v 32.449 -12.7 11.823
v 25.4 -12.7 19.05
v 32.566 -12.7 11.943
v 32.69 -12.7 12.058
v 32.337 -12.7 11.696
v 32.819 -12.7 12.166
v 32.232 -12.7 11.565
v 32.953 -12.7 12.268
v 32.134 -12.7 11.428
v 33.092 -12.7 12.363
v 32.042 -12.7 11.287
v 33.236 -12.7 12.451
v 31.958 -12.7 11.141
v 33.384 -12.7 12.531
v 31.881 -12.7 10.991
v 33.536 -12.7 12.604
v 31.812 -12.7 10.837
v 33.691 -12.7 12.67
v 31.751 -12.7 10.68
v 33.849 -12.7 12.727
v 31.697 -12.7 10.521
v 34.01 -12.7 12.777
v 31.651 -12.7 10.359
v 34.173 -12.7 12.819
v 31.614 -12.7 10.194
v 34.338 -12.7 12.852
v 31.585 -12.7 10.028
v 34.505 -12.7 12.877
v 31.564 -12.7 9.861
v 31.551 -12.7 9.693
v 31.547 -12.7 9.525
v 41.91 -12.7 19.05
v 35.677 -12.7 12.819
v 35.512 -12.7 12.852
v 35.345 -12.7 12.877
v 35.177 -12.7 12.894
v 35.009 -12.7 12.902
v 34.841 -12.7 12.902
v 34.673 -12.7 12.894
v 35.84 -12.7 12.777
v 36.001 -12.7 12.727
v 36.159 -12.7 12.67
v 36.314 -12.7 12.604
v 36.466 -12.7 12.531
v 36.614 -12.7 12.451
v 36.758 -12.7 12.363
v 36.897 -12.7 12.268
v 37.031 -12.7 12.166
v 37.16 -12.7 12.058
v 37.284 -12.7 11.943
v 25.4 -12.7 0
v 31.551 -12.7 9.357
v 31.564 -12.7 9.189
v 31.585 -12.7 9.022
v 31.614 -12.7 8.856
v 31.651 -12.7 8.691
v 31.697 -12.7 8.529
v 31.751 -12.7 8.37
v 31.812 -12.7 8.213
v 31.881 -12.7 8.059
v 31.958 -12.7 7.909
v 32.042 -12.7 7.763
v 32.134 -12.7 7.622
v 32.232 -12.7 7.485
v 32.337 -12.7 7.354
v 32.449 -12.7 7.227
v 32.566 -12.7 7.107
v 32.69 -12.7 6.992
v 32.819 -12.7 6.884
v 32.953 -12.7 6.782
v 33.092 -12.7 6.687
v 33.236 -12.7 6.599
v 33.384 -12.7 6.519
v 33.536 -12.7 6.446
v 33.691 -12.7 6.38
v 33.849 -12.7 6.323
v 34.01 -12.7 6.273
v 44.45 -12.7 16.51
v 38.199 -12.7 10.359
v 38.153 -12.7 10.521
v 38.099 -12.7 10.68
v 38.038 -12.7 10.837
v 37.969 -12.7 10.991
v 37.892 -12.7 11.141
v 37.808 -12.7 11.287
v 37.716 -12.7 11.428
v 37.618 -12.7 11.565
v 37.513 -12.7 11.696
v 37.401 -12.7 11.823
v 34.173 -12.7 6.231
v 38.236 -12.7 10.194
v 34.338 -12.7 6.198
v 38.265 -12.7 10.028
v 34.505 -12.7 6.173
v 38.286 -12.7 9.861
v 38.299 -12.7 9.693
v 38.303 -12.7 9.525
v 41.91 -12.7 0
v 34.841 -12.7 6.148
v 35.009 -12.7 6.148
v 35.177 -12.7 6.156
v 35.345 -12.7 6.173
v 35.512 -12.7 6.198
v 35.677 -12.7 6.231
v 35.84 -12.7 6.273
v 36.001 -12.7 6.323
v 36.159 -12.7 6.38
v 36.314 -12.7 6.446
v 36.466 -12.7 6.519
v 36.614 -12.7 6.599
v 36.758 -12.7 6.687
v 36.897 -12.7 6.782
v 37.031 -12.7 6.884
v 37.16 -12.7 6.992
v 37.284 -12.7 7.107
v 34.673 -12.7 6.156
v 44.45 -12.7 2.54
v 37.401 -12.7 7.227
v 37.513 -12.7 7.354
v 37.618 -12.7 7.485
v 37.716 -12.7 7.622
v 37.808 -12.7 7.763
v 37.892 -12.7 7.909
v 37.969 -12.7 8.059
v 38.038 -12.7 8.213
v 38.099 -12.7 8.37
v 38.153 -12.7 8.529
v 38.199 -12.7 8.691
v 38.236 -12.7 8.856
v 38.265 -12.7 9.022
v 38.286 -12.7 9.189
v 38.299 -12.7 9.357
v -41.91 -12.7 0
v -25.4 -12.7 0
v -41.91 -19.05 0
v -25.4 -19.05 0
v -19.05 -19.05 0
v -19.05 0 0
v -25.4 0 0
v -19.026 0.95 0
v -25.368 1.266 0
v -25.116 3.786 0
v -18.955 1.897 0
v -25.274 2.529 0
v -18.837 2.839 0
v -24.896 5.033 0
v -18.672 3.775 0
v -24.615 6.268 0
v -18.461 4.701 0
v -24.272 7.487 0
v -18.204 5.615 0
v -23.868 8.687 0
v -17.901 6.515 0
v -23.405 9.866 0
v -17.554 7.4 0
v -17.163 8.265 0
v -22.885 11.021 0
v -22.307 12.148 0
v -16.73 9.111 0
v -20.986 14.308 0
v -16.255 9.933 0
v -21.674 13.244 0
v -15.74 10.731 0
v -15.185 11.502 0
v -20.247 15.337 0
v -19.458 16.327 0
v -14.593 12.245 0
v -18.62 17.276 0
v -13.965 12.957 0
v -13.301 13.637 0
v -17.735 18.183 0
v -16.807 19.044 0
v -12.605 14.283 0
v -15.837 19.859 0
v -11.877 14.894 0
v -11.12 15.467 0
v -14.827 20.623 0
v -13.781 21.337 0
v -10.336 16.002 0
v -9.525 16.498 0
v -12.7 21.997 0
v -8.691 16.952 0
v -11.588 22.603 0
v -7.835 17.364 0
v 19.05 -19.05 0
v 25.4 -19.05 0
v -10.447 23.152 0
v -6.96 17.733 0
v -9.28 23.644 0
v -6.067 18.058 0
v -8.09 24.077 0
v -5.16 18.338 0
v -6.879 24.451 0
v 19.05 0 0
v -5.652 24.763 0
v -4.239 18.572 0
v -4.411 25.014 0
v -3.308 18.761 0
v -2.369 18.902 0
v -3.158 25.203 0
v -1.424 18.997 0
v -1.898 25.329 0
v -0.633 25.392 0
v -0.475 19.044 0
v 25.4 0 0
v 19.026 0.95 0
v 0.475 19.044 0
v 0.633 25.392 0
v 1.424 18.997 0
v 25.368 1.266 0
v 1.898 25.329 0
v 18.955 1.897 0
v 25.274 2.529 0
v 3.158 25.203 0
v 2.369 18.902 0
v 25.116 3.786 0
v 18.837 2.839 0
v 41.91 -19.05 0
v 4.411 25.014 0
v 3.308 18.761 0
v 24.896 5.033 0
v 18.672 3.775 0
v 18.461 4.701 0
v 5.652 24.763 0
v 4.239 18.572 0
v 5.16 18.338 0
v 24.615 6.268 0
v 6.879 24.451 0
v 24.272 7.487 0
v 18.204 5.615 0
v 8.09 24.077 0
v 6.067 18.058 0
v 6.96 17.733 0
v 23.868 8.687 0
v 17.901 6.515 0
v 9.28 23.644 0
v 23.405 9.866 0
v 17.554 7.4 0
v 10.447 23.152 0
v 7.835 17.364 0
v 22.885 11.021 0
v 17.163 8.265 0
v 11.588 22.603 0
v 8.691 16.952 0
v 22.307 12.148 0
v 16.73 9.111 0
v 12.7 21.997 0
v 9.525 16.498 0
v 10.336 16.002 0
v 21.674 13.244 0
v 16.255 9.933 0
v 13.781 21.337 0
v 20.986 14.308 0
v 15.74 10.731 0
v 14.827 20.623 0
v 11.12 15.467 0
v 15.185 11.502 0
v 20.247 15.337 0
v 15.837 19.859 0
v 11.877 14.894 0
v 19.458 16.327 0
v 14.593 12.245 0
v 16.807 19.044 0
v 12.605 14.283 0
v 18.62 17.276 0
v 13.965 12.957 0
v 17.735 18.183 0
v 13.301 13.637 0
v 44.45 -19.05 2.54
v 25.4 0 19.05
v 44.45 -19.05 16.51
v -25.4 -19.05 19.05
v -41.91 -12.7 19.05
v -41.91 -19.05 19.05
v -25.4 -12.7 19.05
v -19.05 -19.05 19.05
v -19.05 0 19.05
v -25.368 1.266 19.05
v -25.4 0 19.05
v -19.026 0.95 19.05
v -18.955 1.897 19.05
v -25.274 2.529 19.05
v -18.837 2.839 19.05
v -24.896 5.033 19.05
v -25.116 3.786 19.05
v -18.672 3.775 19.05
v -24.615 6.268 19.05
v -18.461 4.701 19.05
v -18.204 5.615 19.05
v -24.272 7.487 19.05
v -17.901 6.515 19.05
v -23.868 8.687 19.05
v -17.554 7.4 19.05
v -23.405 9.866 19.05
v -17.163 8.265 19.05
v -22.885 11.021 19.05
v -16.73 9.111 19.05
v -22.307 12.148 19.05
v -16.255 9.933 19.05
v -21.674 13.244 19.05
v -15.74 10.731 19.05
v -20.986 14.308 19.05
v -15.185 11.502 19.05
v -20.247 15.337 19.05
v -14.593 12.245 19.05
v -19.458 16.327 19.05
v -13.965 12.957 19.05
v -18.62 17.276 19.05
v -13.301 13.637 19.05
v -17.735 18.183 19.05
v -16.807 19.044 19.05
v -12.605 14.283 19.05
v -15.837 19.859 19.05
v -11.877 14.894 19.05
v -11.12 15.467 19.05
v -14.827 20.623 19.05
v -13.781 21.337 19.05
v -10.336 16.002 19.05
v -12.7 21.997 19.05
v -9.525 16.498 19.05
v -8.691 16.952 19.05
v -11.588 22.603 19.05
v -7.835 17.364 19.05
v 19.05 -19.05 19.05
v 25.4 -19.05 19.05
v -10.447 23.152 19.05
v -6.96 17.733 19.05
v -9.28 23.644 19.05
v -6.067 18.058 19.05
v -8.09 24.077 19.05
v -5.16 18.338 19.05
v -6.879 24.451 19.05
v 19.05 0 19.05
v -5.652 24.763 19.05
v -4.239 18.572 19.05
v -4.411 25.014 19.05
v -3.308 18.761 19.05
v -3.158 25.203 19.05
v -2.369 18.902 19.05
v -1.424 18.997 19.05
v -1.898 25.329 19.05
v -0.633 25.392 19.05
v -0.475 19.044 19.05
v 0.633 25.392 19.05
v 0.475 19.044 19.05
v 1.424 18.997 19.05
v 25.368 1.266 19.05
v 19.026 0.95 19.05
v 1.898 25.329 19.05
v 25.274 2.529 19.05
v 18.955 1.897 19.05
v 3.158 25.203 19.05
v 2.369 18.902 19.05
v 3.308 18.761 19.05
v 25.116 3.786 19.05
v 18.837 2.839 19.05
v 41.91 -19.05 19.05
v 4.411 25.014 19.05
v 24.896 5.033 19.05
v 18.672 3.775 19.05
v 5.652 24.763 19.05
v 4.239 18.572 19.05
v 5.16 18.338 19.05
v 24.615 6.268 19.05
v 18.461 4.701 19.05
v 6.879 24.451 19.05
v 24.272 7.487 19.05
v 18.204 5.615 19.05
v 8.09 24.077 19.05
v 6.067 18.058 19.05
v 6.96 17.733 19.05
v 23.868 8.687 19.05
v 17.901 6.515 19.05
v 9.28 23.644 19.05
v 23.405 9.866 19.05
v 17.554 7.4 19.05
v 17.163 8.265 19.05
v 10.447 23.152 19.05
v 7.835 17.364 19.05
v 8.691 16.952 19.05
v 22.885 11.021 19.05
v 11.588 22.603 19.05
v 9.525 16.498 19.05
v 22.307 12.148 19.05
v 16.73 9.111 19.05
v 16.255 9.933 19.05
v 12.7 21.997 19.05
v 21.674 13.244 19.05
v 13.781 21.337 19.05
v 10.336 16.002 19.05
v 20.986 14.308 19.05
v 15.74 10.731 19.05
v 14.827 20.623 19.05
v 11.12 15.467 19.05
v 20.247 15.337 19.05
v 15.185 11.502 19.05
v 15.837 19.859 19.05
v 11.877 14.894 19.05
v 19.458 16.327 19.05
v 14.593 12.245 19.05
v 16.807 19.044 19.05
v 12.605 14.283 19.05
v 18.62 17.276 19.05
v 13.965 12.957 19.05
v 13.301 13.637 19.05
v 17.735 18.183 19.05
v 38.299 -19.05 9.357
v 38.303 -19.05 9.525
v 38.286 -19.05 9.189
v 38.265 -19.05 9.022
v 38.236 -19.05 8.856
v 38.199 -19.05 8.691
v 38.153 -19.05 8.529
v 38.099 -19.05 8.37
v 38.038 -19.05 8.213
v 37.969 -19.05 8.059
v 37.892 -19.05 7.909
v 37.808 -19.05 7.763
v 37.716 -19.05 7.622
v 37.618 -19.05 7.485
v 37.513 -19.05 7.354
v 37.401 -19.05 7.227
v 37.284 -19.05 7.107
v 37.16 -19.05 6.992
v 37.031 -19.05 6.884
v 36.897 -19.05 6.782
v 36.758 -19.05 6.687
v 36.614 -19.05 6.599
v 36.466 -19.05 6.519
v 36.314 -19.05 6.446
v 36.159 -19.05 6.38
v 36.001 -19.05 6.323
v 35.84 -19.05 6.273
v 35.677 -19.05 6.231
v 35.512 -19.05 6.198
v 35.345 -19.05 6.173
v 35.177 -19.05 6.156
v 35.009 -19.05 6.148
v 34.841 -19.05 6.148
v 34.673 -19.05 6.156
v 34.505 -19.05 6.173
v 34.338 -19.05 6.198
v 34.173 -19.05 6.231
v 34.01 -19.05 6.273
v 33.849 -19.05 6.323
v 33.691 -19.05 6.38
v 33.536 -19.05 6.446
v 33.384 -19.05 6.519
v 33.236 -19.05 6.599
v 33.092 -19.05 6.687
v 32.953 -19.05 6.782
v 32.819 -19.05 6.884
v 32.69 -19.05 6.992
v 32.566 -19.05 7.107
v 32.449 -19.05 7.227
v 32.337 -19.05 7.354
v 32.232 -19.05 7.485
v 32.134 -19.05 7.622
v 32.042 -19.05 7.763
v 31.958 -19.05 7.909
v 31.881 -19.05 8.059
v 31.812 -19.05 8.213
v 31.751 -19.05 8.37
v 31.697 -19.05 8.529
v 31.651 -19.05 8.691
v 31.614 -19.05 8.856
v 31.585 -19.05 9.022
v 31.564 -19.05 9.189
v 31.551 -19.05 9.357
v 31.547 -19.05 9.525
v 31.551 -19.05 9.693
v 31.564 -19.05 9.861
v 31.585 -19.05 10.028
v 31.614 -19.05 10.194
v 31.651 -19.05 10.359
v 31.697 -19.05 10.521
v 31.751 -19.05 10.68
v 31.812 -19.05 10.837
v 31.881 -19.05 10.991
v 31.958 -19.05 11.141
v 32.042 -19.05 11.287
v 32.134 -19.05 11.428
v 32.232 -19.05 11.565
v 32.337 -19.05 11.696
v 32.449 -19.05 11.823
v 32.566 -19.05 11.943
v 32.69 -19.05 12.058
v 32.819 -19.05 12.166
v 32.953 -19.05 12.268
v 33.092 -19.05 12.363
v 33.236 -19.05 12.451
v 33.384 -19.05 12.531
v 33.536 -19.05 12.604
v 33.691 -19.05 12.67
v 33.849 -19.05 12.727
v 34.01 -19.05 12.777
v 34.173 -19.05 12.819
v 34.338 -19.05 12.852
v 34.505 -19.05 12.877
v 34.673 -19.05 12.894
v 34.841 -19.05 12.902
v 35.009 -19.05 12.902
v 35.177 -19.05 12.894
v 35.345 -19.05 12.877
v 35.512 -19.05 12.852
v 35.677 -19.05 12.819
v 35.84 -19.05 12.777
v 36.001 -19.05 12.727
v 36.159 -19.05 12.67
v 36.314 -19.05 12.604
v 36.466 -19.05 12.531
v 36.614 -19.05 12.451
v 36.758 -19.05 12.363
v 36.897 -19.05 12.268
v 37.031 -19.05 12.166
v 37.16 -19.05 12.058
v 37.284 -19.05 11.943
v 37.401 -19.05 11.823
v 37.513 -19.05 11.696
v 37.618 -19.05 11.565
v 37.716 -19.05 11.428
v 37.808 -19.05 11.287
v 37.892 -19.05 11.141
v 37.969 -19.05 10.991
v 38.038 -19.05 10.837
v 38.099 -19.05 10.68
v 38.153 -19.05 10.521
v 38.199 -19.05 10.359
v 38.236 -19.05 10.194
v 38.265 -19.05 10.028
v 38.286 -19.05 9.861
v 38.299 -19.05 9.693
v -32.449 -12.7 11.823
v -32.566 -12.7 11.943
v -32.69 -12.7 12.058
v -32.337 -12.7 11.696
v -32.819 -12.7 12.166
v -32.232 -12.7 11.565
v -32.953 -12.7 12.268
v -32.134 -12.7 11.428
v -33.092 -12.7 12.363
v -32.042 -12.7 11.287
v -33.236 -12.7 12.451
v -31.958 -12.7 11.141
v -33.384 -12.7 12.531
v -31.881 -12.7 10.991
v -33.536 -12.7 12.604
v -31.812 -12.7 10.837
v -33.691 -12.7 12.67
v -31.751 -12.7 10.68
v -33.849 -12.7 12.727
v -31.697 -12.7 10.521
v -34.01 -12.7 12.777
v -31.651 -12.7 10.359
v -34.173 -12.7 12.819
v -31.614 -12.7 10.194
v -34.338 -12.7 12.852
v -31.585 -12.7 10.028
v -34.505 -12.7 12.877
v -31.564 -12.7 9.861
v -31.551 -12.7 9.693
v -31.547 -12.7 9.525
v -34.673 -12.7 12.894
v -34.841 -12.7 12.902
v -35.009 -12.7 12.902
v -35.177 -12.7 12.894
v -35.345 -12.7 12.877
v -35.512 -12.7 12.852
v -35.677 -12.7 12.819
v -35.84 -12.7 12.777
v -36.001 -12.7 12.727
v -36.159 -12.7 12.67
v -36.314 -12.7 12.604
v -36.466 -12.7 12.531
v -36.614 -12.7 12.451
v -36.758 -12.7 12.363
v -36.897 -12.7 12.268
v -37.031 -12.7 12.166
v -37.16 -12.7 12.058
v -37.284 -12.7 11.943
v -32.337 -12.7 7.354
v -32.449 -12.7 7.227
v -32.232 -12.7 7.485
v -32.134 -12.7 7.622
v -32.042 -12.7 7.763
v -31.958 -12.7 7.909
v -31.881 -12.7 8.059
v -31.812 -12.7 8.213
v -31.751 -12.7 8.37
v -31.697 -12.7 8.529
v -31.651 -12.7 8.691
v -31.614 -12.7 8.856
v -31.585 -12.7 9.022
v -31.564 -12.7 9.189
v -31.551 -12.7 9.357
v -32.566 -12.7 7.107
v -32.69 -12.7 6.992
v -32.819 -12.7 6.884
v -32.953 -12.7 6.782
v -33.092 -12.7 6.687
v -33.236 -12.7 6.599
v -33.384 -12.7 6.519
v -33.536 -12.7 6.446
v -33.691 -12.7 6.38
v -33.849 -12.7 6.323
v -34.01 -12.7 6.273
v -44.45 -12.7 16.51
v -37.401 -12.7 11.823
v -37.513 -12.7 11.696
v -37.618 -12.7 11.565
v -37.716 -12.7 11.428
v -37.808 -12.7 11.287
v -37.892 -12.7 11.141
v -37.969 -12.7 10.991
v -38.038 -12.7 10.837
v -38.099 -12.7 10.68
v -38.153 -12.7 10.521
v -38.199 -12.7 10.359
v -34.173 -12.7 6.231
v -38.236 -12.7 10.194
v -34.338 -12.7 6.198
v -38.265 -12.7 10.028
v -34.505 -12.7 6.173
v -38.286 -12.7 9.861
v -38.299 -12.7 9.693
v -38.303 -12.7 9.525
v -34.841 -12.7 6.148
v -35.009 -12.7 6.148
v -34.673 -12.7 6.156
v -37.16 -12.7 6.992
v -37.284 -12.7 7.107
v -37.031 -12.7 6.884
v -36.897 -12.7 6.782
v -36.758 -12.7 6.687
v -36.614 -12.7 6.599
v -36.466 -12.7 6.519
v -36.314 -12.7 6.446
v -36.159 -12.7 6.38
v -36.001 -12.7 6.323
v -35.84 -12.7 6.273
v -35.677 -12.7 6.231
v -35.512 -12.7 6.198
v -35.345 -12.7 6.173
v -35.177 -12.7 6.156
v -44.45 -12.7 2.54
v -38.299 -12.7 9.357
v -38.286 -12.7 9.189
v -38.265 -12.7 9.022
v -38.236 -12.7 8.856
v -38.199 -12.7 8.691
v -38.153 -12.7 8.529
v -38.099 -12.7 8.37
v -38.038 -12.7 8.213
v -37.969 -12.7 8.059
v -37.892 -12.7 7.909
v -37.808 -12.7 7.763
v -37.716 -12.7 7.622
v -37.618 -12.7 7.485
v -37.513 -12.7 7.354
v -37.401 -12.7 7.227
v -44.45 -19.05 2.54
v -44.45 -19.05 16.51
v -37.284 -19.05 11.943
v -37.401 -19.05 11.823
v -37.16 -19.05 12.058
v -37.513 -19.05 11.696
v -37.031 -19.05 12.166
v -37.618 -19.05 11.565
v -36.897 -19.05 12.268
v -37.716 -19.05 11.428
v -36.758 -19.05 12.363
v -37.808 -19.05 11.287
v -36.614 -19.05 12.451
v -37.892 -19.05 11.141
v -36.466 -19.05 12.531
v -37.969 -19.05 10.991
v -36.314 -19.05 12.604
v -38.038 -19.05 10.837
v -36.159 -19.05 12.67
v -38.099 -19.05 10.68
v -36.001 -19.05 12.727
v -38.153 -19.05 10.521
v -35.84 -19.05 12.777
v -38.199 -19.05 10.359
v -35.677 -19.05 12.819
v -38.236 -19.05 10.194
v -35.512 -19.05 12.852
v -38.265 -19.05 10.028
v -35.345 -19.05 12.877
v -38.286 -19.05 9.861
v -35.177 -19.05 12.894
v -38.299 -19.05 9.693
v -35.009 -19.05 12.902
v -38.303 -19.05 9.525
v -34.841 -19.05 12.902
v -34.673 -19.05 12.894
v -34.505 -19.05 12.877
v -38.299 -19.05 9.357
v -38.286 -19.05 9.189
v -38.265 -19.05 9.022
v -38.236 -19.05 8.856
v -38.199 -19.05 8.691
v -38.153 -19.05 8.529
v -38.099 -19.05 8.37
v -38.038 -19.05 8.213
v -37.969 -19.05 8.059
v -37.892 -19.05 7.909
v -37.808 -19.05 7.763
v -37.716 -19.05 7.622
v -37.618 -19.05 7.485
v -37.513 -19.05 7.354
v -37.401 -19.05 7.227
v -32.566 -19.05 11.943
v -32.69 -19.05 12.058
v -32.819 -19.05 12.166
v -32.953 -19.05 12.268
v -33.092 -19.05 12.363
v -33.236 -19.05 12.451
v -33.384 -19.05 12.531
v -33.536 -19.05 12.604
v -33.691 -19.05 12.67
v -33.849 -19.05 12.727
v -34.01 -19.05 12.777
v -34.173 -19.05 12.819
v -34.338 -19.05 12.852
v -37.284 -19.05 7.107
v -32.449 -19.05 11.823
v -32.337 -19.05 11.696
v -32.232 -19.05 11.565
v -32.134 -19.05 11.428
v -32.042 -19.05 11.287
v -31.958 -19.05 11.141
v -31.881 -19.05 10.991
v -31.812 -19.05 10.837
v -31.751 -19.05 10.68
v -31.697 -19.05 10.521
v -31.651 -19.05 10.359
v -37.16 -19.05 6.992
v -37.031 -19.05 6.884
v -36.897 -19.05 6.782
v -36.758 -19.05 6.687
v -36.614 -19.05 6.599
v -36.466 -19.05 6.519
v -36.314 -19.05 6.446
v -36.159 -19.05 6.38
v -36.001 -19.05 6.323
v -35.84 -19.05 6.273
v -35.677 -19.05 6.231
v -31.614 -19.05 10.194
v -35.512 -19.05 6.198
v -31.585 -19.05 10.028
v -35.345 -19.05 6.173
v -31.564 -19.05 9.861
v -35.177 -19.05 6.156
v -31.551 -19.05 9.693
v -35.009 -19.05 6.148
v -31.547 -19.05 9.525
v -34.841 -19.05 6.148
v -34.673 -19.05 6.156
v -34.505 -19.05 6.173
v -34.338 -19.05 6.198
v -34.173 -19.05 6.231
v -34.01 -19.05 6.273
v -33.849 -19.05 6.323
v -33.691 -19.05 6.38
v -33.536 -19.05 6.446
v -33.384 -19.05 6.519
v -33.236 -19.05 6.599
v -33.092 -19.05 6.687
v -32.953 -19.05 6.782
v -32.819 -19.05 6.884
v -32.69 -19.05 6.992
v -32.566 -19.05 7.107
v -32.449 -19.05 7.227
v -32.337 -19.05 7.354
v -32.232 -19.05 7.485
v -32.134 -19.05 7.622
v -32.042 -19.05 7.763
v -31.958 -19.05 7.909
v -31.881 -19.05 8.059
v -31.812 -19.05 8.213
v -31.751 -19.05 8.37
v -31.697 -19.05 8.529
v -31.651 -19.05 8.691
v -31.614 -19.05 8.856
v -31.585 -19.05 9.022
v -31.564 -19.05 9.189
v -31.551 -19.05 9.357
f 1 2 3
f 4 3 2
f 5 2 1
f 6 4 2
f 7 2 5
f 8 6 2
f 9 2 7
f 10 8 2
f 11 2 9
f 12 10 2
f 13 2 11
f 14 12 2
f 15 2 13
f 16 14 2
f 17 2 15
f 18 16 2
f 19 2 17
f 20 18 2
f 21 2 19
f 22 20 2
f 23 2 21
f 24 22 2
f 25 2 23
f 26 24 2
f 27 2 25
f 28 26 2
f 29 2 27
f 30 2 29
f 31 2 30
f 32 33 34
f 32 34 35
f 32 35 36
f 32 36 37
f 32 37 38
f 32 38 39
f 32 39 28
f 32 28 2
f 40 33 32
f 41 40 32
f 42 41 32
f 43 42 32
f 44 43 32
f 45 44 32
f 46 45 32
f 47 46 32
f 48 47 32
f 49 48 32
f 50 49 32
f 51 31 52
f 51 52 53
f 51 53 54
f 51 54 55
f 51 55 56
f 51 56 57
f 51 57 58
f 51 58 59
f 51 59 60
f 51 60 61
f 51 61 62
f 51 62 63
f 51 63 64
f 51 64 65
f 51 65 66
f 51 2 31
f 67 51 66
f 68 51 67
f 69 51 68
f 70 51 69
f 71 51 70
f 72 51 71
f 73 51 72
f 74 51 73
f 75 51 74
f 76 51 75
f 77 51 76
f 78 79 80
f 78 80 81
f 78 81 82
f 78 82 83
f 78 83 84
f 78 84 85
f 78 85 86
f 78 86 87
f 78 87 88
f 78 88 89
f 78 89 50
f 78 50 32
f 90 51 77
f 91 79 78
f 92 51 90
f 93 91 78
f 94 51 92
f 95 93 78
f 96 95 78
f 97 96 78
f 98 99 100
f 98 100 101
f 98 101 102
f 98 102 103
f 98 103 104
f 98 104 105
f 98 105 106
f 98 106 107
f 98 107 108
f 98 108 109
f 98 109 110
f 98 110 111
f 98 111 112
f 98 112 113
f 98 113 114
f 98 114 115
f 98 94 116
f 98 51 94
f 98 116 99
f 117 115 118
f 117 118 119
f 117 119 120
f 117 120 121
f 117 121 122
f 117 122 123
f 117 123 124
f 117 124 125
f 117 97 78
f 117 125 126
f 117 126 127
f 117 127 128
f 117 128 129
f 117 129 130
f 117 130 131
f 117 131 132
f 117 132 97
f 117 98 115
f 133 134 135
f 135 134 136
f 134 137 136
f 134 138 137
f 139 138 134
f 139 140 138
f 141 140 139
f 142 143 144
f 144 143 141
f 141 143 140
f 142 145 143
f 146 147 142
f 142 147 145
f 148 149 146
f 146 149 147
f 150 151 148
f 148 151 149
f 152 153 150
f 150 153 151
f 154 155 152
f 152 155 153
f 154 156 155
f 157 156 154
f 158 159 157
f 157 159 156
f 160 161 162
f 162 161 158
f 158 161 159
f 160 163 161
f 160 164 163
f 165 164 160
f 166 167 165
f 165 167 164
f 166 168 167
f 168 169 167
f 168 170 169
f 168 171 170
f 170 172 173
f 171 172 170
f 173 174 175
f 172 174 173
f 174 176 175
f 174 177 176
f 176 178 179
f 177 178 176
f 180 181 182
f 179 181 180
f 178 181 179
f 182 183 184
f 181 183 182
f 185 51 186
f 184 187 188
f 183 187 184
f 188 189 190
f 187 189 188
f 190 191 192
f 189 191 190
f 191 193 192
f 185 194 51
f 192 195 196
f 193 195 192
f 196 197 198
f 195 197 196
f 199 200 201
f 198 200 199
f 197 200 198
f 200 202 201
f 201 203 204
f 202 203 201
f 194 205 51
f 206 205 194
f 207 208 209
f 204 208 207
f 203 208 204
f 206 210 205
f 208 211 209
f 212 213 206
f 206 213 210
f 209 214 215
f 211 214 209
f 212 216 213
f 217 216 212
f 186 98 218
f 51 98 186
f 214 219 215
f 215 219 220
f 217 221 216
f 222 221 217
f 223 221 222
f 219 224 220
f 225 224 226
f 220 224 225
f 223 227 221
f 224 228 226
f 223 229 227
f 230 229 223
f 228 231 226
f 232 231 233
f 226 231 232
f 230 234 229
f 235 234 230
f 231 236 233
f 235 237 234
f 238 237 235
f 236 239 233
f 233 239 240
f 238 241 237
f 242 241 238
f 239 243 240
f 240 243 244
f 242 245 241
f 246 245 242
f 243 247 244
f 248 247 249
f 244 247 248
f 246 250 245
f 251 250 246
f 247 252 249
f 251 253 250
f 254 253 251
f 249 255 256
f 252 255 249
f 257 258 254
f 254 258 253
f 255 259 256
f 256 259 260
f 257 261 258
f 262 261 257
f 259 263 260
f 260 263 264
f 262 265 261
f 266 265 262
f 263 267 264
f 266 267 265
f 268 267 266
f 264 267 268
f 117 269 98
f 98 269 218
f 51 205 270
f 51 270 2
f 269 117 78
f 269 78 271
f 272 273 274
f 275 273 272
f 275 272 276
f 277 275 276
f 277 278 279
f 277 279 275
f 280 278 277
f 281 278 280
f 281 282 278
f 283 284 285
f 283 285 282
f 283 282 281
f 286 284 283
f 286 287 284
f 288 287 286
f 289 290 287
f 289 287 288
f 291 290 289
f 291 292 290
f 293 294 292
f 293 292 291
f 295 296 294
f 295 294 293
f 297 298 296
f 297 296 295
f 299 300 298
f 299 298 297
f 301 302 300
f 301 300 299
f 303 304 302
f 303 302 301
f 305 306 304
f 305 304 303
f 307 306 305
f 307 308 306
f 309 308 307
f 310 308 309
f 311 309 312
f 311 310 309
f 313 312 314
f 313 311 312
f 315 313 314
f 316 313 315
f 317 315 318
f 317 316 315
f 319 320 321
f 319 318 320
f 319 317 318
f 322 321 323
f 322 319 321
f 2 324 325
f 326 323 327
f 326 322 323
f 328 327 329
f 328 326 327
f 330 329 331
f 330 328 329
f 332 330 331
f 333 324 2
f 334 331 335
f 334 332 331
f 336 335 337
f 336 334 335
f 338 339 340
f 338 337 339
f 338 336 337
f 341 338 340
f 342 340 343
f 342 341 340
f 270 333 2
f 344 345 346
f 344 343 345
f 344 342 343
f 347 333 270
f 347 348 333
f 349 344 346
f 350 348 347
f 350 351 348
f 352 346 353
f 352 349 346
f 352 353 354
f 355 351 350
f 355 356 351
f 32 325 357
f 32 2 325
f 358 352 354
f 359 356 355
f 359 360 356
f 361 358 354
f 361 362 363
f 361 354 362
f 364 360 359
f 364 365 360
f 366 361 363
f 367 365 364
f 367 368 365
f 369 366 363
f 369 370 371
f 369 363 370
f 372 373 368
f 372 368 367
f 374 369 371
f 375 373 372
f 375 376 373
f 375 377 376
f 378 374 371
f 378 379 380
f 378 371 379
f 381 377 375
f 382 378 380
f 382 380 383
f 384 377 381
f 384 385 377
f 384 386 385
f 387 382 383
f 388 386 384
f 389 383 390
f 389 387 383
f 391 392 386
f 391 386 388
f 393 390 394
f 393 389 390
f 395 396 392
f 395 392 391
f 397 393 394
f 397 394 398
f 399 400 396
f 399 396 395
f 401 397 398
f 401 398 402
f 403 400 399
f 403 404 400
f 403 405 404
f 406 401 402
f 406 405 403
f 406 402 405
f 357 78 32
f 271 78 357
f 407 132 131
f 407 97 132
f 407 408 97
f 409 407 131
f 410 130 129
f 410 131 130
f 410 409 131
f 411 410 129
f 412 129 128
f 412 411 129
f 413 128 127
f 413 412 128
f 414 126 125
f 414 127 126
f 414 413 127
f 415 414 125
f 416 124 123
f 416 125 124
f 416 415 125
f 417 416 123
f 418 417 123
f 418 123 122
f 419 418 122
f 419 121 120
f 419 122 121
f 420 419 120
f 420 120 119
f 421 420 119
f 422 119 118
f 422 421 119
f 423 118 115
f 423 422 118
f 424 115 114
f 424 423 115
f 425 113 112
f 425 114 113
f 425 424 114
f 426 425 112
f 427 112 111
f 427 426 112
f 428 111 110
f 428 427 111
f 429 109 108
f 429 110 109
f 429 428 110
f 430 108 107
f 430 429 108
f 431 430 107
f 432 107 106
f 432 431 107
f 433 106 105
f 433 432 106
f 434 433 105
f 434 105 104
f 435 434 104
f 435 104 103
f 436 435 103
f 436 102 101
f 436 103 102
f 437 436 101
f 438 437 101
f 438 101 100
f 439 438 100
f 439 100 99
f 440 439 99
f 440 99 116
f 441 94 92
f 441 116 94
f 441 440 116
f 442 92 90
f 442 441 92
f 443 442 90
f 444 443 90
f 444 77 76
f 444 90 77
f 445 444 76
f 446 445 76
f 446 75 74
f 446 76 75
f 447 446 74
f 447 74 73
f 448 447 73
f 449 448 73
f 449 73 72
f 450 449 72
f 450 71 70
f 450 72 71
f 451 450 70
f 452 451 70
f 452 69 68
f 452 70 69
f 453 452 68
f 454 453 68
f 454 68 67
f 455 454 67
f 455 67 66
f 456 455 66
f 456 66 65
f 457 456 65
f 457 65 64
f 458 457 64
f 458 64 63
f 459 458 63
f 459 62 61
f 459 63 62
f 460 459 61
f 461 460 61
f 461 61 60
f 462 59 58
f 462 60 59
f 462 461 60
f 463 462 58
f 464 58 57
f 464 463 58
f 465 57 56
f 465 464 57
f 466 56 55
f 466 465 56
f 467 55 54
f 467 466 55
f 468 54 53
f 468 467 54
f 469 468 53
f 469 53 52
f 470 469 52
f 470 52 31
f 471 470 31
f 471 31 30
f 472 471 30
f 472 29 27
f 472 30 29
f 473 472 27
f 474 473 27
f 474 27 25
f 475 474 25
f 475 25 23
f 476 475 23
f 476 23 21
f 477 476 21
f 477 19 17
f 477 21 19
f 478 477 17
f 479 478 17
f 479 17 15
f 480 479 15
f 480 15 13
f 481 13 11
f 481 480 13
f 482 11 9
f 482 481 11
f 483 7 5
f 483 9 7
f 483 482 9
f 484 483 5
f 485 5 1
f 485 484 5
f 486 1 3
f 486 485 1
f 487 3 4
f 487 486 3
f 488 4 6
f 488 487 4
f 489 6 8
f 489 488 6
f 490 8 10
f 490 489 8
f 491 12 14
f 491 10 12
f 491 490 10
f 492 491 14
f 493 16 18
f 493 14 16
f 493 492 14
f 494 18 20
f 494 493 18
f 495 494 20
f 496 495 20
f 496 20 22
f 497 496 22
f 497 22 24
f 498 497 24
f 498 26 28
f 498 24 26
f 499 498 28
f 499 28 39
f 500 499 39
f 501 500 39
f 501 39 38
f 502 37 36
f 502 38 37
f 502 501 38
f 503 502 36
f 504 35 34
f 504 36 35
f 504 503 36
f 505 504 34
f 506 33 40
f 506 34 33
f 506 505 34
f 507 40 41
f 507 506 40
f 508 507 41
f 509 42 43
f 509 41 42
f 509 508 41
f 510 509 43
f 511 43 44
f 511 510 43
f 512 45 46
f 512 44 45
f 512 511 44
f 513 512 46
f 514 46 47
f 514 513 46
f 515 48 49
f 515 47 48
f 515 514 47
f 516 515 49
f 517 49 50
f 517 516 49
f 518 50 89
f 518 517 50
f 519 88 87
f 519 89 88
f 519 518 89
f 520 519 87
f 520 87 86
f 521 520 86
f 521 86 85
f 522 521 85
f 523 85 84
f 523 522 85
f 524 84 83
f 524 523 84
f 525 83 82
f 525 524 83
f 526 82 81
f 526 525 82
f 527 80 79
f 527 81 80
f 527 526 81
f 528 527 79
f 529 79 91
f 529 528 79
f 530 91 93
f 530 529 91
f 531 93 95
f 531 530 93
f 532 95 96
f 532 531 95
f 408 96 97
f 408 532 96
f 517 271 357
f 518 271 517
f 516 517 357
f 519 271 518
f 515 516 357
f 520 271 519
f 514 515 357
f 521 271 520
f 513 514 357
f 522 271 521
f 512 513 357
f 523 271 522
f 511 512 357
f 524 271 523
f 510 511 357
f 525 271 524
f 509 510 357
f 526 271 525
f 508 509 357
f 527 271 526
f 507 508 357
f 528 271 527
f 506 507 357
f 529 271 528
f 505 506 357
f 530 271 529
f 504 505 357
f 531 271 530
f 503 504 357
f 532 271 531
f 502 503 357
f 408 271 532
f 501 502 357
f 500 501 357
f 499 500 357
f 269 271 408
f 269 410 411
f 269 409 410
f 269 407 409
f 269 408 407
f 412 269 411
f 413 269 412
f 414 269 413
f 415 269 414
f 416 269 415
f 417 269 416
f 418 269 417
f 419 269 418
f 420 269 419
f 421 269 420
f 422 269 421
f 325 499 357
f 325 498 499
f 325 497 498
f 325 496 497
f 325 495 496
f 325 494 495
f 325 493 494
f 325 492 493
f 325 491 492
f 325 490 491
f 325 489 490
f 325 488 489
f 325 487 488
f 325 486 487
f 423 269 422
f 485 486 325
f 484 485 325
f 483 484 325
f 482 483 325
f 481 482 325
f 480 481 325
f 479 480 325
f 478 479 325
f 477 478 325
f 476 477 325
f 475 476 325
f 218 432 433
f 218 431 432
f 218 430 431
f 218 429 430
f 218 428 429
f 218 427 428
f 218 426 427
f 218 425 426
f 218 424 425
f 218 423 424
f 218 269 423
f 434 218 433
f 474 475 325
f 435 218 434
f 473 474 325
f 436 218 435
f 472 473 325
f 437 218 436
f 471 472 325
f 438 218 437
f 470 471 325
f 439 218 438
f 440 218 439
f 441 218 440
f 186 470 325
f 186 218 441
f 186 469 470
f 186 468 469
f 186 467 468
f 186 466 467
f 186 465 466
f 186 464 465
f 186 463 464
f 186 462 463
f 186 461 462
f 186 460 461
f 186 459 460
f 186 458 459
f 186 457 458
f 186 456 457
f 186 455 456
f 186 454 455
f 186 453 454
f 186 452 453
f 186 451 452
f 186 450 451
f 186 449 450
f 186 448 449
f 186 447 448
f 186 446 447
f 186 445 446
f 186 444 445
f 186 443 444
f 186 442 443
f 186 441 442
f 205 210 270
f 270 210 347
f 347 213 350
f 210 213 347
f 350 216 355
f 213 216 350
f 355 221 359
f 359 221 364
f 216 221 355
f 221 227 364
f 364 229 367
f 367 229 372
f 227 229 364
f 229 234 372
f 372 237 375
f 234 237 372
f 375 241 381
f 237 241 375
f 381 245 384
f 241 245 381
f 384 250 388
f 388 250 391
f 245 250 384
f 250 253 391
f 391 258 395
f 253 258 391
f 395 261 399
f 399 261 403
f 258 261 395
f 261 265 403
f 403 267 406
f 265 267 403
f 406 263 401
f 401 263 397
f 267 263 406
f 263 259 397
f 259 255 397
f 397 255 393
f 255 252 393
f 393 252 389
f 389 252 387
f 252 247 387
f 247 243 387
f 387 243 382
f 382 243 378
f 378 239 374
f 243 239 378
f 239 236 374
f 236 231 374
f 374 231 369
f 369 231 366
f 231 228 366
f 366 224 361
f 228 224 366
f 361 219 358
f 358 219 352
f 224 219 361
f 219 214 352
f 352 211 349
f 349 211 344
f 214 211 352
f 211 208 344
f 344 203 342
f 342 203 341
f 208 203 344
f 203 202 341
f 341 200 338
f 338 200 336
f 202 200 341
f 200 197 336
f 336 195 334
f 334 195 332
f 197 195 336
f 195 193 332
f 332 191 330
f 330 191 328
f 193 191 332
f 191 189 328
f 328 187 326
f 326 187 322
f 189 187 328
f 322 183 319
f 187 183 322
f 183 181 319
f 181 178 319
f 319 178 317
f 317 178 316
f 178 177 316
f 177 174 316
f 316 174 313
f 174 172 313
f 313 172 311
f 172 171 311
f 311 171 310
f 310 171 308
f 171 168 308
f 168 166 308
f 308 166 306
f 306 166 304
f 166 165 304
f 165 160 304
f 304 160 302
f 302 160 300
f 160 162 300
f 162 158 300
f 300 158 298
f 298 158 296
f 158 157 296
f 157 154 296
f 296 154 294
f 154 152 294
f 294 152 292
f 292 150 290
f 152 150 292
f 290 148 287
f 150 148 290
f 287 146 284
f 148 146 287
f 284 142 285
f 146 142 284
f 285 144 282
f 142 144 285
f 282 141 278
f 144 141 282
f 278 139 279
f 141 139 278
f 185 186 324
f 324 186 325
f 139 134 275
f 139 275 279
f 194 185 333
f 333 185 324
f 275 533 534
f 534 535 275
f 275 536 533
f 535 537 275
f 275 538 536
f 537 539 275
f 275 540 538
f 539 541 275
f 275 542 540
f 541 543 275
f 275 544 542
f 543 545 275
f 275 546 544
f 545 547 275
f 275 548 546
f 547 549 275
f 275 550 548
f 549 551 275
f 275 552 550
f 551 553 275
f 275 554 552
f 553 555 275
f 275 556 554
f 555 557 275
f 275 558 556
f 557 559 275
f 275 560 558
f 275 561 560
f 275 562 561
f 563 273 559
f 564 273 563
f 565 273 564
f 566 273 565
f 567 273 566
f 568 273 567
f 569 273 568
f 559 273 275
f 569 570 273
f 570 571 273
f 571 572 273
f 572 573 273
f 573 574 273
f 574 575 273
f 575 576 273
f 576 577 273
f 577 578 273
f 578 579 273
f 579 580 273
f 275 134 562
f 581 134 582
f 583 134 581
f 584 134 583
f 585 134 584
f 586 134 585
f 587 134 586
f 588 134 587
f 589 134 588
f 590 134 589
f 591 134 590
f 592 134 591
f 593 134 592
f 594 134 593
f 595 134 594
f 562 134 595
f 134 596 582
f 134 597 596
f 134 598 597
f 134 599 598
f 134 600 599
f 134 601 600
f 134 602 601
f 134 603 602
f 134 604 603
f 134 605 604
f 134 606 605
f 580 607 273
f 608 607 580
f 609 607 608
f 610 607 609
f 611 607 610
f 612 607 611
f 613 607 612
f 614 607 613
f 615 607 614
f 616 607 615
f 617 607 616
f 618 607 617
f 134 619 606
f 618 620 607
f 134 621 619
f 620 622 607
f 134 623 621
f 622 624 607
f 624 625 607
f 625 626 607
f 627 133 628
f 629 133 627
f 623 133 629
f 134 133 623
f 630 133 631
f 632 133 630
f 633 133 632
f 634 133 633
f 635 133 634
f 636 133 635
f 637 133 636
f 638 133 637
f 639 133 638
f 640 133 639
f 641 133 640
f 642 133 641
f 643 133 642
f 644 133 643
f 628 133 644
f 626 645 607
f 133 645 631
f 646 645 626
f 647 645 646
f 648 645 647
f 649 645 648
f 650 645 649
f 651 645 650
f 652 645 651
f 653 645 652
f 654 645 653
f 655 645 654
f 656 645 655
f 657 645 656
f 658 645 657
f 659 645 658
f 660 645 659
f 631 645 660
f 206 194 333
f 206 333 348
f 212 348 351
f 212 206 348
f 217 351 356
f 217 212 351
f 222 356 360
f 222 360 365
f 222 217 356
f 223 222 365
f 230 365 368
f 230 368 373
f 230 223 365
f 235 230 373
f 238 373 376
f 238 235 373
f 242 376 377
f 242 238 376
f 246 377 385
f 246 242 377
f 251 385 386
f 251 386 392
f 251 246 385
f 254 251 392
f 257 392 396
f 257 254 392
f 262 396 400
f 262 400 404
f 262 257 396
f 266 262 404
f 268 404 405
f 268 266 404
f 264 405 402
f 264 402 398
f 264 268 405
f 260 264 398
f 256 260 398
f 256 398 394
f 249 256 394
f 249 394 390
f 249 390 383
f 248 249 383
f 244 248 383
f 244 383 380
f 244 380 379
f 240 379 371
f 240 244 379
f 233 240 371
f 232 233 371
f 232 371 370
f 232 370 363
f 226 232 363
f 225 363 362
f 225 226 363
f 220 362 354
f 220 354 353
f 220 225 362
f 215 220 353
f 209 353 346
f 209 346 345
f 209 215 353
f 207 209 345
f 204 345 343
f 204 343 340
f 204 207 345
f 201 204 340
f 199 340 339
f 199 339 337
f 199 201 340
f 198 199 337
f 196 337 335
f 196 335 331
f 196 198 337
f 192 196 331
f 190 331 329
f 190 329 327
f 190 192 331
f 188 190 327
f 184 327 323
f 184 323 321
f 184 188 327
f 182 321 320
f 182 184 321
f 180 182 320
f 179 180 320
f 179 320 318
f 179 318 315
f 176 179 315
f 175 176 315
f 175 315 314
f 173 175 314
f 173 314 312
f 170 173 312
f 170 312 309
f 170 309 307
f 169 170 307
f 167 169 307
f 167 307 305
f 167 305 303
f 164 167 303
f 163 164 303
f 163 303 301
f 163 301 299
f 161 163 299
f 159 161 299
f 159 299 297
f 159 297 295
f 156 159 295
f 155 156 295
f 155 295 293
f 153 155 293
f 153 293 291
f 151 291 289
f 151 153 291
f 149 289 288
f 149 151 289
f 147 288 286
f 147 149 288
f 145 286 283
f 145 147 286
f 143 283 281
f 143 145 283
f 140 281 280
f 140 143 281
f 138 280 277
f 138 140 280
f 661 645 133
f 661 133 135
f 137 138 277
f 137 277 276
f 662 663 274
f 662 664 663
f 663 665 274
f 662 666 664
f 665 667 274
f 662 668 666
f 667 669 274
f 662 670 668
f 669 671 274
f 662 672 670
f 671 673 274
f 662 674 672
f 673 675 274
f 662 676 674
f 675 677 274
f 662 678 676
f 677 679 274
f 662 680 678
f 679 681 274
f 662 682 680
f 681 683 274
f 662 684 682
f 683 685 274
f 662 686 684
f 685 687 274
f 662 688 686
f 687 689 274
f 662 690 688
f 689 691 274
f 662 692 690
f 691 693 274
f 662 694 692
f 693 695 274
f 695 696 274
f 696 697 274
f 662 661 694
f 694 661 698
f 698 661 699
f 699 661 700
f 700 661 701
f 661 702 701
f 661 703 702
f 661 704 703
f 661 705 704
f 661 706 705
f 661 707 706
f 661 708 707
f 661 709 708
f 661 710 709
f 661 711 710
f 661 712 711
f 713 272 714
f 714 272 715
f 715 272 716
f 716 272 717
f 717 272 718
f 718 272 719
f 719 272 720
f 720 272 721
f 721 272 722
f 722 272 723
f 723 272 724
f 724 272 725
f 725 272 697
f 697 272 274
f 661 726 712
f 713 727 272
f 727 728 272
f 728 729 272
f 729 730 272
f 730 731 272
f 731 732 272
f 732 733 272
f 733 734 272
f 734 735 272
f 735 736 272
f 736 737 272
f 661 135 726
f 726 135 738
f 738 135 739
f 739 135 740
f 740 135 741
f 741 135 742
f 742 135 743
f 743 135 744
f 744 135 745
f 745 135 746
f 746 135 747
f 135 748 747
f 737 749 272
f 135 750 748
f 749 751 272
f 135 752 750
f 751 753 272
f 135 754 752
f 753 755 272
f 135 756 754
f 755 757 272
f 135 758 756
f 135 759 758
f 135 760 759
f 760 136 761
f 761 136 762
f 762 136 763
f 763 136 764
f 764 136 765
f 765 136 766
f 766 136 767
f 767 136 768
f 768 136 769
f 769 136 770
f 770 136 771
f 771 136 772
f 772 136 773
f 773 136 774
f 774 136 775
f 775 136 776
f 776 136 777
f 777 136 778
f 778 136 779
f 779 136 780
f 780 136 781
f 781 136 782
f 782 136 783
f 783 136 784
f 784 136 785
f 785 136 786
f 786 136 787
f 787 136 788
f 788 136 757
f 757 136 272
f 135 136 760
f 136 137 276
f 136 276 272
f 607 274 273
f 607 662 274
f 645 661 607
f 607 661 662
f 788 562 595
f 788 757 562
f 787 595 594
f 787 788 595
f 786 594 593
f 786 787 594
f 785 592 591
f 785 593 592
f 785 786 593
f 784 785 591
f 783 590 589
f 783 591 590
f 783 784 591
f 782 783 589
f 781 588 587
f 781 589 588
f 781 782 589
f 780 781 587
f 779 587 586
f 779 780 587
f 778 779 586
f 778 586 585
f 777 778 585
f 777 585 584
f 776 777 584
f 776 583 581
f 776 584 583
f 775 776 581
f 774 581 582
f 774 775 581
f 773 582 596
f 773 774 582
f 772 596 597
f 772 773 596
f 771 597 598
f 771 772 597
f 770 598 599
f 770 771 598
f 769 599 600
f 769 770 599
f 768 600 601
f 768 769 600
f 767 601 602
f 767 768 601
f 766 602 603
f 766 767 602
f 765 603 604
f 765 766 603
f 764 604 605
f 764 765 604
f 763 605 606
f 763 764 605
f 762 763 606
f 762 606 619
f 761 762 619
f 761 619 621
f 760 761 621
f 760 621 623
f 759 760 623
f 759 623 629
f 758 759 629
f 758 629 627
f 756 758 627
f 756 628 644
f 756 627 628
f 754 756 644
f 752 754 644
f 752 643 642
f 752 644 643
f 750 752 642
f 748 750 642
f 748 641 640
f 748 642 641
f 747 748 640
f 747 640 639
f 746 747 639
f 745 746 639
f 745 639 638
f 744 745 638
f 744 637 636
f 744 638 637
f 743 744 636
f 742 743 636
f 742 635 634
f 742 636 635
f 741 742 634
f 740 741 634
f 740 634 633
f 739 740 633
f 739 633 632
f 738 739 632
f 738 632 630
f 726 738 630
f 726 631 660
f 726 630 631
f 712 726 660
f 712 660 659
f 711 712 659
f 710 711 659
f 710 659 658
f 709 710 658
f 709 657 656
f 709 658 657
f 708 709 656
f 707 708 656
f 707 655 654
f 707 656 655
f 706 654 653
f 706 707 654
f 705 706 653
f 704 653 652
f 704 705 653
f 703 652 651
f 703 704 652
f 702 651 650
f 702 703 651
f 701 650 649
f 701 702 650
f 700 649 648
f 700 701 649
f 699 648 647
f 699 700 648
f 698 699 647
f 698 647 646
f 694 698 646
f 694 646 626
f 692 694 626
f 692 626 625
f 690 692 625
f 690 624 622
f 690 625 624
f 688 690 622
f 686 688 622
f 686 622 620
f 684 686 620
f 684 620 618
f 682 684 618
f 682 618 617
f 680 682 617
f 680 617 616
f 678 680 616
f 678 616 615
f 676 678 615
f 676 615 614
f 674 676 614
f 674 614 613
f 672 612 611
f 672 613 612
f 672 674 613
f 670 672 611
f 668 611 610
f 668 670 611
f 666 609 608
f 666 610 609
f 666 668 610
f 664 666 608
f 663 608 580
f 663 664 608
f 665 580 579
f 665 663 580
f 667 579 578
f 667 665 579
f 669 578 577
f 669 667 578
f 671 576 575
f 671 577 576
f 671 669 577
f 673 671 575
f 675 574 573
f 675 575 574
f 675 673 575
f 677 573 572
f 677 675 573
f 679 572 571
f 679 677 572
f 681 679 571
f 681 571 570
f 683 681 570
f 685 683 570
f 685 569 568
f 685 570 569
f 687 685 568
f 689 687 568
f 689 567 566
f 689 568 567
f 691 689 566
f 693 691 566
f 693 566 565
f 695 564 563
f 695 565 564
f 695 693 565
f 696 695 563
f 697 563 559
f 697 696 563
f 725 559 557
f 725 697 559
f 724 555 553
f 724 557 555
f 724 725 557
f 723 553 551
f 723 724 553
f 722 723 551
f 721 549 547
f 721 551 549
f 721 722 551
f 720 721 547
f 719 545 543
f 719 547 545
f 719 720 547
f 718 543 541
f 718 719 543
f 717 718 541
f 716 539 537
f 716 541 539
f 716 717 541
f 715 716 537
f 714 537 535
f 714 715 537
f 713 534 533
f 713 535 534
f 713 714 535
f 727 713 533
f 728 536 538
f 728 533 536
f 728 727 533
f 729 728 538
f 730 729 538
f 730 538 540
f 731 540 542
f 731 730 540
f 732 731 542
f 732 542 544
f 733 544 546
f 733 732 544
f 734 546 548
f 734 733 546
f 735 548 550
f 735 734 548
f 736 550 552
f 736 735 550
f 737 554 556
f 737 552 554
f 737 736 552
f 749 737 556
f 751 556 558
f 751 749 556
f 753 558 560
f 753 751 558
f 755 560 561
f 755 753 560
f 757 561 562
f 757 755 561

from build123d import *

# Parameters (mm, degrees)
PAD_DEPTH    = 19.05
SKETCH001_R  = 3.3782
HOLE_DEPTH   = 24.9936
CHAMFER_SIZE = 2.54


with BuildPart() as part:
    # Sketch → Pad (new body)
    with BuildSketch(Plane.XY):
        with BuildLine():
            ThreePointArc((19.05, 0), (0, 19.05), (-19.05, 0))
            Line((-19.05, 0), (-19.05, -19.05))
            Line((-19.05, -19.05), (-25.4, -19.05))
            Line((-44.45, -19.05), (-25.4, -19.05))
            Line((-44.45, -12.7), (-44.45, -19.05))
            Line((-25.4, -12.7), (-44.45, -12.7))
            Line((-25.4, -12.7), (-25.4, 0))
            ThreePointArc((25.4, 0), (0, 25.4), (-25.4, 0))
            Line((25.4, 0), (25.4, -12.7))
            Line((25.4, -12.7), (44.45, -12.7))
            Line((44.45, -12.7), (44.45, -19.05))
            Line((44.45, -19.05), (25.4, -19.05))
            Line((19.05, -19.05), (25.4, -19.05))
            Line((19.05, 0), (19.05, -19.05))
        make_face()
    extrude(amount=PAD_DEPTH)

    # Sketch001 → Hole (cut)
    with BuildSketch(Plane.XZ):
        with Locations((34.925, 9.525)):
            Circle(SKETCH001_R)
        with Locations((-34.925, 9.525)):
            Circle(SKETCH001_R)
    extrude(amount=HOLE_DEPTH, mode=Mode.SUBTRACT)

    # Chamfer
    chamfer_edges = [part.edges().sort_by_distance(p)[0] for p in [
        (-44.45, -15.875, 19.05),
        (-44.45, -15.875, 0),
        (44.45, -15.875, 0),
        (44.45, -15.875, 19.05),
    ]]
    chamfer(chamfer_edges, length=CHAMFER_SIZE)


solid = part.part
